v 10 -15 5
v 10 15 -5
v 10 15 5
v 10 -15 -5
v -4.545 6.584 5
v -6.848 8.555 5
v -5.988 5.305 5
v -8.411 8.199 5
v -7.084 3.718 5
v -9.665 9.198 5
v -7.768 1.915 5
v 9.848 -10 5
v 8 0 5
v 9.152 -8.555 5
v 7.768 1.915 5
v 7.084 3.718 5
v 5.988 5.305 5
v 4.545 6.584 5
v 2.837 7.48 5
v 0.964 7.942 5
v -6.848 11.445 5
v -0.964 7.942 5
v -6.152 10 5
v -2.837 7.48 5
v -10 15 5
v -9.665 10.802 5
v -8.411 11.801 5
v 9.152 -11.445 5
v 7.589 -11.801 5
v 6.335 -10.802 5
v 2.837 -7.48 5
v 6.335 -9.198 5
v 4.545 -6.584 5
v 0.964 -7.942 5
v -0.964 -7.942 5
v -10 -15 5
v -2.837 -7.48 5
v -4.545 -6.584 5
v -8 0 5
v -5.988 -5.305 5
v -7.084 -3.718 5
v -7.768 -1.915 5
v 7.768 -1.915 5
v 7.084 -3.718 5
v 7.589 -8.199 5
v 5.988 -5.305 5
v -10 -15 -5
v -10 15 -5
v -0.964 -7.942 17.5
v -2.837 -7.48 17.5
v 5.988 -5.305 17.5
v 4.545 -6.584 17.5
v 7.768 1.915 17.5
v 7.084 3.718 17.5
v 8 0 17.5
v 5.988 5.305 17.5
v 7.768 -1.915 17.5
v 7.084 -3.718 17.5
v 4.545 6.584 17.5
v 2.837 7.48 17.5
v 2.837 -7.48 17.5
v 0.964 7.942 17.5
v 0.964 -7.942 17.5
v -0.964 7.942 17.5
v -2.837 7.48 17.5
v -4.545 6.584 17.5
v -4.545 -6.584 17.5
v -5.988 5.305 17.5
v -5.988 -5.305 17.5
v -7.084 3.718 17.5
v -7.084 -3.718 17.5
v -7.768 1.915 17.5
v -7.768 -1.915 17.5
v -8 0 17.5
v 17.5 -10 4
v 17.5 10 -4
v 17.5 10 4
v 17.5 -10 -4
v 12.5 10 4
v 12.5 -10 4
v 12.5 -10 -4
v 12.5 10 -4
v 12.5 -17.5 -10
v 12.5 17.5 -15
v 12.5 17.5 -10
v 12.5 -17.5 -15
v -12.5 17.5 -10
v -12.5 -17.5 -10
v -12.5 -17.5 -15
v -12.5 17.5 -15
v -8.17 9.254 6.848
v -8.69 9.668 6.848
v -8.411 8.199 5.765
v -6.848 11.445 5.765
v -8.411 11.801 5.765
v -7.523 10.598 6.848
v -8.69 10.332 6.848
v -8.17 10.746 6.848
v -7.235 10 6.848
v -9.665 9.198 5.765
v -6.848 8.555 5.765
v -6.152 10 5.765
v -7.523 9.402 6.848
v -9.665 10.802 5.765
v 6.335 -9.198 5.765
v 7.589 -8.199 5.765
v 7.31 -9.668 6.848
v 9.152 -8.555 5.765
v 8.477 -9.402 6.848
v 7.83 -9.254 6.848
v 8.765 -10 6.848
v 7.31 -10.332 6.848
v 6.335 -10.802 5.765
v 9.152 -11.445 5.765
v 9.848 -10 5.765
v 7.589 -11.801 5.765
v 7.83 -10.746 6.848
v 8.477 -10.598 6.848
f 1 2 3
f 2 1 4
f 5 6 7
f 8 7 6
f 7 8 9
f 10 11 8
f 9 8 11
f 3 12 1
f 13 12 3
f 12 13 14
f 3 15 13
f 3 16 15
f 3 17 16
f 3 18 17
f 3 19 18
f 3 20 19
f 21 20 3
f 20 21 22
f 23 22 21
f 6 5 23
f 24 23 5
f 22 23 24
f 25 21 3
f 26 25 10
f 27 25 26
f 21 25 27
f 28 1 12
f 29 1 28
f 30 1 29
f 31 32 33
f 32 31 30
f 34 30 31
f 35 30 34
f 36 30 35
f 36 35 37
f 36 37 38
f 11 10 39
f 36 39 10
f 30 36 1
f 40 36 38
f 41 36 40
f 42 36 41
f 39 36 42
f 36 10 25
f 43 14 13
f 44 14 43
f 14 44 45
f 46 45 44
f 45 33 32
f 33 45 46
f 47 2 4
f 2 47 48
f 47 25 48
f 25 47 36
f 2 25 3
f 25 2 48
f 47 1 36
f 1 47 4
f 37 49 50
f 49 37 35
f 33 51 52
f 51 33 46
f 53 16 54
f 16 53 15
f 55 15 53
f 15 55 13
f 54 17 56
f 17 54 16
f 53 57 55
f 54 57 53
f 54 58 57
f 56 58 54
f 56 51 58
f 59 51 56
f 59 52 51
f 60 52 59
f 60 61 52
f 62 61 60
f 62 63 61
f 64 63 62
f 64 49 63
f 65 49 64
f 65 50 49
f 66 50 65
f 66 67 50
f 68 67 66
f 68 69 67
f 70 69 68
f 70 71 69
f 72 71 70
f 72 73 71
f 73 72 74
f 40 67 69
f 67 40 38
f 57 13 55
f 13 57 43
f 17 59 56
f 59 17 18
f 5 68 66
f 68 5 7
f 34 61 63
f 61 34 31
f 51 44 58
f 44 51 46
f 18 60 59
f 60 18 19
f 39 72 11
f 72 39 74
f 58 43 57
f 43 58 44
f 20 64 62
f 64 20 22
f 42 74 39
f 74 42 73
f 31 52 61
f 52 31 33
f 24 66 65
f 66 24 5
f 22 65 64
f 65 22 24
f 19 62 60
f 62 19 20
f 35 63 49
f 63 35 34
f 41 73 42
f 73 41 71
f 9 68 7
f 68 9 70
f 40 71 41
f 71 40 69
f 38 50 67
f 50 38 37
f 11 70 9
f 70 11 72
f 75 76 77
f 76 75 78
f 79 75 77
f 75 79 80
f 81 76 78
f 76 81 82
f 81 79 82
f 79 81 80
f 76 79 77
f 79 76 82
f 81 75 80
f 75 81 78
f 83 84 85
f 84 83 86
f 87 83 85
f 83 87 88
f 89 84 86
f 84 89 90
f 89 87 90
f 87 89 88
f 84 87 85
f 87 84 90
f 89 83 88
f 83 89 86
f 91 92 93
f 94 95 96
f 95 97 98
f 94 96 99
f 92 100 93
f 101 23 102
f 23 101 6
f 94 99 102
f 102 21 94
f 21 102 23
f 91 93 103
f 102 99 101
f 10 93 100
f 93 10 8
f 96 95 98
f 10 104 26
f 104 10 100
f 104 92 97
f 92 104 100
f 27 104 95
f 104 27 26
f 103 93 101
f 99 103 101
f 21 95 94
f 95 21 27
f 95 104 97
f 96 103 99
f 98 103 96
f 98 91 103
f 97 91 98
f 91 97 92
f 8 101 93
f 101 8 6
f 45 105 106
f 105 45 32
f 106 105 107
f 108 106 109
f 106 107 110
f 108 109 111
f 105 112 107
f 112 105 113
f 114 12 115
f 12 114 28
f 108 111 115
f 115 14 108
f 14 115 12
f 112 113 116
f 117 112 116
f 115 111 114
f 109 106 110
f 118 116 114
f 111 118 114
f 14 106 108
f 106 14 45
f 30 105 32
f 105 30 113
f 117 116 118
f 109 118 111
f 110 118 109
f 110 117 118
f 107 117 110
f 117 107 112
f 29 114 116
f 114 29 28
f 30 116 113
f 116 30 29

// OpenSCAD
// Test model for SCAD viewer
// This demonstrates various shapes and scaling

// Main body
cube([20, 30, 10], center=true);

// Top cylinder
translate([0, 0, 10])
cylinder(h=15, r=8, center=true);

// Side protrusion
translate([15, 0, 0])
cube([5, 20, 8], center=true);

// Bottom base
translate([0, 0, -12.5])
cube([25, 35, 5], center=true);

// Small details
translate([-8, 10, 5])
sphere(r=2);

translate([8, -10, 5])
sphere(r=2); 
